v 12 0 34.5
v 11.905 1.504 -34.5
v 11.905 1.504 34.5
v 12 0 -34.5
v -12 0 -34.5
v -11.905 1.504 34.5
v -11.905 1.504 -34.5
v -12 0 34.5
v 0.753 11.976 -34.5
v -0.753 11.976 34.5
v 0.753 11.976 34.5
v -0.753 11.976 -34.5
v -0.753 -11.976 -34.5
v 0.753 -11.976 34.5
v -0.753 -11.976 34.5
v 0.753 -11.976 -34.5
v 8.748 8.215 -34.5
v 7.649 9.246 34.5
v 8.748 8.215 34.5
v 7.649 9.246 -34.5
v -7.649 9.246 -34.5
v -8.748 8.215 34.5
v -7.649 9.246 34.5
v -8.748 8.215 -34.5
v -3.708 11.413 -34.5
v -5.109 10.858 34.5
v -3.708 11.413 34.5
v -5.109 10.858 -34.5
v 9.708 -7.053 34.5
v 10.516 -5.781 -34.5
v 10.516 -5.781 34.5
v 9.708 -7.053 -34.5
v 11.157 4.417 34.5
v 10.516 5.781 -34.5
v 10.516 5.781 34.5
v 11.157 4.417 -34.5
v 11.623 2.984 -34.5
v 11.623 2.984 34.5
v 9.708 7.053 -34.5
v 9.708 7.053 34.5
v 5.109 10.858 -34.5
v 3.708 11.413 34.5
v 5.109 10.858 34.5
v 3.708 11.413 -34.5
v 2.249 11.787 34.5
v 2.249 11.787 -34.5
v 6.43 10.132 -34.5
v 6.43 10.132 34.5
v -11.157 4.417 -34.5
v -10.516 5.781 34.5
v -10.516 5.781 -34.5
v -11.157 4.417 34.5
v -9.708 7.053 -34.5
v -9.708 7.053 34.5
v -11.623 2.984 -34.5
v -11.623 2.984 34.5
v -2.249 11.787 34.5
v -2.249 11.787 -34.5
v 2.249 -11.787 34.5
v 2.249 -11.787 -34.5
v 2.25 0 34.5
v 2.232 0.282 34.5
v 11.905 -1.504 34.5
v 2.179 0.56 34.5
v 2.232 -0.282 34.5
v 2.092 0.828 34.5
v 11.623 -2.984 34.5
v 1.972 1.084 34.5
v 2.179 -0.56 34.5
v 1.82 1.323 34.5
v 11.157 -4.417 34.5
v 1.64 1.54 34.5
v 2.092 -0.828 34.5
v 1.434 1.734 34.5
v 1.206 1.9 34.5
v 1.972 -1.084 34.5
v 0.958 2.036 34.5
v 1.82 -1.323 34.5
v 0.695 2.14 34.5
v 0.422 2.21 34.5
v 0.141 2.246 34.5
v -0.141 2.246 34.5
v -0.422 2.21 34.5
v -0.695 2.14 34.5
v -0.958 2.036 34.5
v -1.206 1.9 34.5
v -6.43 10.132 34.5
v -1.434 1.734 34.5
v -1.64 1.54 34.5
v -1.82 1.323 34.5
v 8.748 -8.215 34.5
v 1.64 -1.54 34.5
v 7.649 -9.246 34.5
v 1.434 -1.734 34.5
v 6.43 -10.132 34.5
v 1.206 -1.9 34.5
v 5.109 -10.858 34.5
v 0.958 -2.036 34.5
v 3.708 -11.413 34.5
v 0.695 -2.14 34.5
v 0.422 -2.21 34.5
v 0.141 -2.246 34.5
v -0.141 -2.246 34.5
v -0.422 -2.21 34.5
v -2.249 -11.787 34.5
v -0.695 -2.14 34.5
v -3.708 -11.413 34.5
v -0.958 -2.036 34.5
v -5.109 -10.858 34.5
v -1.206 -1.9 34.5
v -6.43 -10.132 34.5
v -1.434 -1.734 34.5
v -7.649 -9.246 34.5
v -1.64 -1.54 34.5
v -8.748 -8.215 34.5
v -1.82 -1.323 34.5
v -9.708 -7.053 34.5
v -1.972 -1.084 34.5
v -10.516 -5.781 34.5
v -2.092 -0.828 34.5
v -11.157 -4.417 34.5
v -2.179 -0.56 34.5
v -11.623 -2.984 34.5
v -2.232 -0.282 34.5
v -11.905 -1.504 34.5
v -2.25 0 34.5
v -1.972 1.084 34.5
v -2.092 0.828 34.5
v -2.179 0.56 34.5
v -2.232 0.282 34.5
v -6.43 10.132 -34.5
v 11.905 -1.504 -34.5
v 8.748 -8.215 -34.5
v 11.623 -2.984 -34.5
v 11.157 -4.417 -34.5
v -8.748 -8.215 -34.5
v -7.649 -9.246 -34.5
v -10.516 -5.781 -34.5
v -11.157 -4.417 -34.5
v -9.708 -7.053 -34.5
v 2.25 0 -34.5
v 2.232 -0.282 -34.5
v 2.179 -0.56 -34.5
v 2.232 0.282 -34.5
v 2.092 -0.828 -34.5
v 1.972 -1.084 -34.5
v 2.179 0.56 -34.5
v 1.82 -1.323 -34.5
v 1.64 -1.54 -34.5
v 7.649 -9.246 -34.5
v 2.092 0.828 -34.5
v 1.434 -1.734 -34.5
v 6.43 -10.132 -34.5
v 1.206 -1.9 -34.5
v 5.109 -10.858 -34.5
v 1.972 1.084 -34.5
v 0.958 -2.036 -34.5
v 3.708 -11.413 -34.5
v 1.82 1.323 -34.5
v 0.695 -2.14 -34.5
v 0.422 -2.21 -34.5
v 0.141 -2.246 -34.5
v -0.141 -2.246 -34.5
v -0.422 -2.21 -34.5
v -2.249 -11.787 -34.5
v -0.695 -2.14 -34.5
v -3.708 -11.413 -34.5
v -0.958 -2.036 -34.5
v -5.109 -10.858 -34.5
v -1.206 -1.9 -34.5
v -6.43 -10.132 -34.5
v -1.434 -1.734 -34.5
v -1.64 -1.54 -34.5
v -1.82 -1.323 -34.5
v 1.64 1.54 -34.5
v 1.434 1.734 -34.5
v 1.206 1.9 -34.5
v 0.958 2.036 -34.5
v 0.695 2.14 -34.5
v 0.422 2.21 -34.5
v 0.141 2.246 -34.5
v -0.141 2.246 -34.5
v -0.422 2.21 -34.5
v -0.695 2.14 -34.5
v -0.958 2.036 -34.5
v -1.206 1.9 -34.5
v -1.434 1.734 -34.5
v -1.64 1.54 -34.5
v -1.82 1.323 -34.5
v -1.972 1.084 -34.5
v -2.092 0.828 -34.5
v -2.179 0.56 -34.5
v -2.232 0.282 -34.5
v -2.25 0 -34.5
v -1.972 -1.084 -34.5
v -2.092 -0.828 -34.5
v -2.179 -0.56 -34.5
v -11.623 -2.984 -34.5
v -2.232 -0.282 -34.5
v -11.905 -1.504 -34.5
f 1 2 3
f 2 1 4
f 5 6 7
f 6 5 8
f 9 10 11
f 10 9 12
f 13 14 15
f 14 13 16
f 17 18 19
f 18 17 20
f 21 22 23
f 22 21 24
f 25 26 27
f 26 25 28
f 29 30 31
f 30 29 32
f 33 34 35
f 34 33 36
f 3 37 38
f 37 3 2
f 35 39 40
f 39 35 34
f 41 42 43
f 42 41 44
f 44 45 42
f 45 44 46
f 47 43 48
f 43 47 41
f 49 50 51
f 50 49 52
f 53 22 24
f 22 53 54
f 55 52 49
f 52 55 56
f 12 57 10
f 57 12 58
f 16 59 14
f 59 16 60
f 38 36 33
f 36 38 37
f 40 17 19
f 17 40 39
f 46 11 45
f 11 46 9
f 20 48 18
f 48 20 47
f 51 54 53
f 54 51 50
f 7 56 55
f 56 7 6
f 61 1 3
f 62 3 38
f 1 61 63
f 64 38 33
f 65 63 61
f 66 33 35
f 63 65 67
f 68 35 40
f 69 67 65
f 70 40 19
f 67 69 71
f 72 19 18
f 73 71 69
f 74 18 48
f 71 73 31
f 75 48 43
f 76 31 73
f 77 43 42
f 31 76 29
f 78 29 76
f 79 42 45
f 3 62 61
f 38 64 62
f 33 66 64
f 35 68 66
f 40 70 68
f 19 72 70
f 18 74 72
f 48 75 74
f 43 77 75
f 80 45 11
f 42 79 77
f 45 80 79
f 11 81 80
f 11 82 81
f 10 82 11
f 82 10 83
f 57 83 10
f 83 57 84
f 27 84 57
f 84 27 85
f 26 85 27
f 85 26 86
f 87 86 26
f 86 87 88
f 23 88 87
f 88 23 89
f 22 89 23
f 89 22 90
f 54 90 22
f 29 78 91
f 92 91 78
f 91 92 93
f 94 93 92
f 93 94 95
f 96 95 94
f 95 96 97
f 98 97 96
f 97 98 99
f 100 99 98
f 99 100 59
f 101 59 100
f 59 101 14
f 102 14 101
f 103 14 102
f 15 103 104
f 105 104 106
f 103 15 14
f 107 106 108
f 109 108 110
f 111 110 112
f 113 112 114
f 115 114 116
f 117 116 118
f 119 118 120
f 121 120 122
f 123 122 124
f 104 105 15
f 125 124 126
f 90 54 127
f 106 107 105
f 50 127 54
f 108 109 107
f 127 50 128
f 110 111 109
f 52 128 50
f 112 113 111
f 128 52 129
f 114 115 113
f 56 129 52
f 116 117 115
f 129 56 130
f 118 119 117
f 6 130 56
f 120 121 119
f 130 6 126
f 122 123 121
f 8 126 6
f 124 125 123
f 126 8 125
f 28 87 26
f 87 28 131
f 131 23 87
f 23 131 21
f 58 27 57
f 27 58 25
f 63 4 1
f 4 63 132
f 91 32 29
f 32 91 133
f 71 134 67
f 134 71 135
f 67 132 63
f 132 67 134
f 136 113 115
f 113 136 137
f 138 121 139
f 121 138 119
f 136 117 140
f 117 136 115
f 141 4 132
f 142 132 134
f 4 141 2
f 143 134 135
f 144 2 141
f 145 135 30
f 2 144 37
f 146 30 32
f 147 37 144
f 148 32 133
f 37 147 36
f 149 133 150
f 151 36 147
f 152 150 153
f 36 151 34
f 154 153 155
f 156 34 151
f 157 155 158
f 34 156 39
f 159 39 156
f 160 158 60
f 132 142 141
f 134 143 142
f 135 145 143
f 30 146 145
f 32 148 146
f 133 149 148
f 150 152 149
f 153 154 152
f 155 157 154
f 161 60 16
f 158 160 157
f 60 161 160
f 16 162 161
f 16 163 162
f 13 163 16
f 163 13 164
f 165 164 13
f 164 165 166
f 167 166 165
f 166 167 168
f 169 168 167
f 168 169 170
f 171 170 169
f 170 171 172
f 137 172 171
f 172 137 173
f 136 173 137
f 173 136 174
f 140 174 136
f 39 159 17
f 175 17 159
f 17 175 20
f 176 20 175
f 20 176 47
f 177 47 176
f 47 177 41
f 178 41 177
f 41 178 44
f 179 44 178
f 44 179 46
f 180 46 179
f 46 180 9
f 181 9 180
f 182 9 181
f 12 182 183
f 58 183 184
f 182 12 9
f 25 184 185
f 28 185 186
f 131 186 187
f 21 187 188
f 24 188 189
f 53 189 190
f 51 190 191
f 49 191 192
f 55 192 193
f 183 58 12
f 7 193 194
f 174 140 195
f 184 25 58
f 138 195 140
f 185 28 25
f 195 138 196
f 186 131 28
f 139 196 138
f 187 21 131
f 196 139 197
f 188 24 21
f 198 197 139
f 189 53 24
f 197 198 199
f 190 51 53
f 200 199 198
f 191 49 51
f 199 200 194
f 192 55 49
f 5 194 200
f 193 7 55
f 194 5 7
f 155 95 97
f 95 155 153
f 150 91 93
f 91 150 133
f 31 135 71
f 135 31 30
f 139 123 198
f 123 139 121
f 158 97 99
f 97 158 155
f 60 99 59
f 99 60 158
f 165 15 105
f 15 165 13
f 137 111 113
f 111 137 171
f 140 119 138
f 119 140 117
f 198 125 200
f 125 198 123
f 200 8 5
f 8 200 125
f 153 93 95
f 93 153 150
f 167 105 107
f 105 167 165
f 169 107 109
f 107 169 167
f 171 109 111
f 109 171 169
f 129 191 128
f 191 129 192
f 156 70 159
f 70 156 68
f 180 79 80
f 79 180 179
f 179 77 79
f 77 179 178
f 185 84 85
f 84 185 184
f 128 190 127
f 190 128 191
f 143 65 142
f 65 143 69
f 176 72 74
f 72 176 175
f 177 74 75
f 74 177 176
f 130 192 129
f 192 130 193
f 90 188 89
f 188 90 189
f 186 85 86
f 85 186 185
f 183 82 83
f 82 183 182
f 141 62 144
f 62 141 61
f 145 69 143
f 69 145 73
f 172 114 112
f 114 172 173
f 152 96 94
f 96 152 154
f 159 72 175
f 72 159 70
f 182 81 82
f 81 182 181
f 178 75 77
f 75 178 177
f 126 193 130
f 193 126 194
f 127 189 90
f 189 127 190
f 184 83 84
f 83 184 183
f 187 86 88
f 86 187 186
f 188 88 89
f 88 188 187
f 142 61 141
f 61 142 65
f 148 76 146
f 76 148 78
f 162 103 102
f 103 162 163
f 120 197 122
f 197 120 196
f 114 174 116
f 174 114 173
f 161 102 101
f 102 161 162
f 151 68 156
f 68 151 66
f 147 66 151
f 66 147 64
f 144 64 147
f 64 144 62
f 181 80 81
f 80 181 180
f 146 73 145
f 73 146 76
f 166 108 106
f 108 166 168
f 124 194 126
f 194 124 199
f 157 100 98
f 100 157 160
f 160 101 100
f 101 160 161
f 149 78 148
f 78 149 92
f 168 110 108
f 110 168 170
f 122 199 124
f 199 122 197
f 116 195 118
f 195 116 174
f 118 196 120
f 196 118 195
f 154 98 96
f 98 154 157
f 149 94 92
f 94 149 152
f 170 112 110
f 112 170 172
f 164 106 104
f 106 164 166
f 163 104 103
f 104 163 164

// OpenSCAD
$fn = 50;


difference() {
	union() {
		translate(v = [0, 0, -34.5000000000]) {
			cylinder(h = 69, r = 12.0000000000);
		}
	}
	union() {
		translate(v = [0, 0, -100.0000000000]) {
			cylinder(h = 200, r = 2.2500000000);
		}
	}
}
